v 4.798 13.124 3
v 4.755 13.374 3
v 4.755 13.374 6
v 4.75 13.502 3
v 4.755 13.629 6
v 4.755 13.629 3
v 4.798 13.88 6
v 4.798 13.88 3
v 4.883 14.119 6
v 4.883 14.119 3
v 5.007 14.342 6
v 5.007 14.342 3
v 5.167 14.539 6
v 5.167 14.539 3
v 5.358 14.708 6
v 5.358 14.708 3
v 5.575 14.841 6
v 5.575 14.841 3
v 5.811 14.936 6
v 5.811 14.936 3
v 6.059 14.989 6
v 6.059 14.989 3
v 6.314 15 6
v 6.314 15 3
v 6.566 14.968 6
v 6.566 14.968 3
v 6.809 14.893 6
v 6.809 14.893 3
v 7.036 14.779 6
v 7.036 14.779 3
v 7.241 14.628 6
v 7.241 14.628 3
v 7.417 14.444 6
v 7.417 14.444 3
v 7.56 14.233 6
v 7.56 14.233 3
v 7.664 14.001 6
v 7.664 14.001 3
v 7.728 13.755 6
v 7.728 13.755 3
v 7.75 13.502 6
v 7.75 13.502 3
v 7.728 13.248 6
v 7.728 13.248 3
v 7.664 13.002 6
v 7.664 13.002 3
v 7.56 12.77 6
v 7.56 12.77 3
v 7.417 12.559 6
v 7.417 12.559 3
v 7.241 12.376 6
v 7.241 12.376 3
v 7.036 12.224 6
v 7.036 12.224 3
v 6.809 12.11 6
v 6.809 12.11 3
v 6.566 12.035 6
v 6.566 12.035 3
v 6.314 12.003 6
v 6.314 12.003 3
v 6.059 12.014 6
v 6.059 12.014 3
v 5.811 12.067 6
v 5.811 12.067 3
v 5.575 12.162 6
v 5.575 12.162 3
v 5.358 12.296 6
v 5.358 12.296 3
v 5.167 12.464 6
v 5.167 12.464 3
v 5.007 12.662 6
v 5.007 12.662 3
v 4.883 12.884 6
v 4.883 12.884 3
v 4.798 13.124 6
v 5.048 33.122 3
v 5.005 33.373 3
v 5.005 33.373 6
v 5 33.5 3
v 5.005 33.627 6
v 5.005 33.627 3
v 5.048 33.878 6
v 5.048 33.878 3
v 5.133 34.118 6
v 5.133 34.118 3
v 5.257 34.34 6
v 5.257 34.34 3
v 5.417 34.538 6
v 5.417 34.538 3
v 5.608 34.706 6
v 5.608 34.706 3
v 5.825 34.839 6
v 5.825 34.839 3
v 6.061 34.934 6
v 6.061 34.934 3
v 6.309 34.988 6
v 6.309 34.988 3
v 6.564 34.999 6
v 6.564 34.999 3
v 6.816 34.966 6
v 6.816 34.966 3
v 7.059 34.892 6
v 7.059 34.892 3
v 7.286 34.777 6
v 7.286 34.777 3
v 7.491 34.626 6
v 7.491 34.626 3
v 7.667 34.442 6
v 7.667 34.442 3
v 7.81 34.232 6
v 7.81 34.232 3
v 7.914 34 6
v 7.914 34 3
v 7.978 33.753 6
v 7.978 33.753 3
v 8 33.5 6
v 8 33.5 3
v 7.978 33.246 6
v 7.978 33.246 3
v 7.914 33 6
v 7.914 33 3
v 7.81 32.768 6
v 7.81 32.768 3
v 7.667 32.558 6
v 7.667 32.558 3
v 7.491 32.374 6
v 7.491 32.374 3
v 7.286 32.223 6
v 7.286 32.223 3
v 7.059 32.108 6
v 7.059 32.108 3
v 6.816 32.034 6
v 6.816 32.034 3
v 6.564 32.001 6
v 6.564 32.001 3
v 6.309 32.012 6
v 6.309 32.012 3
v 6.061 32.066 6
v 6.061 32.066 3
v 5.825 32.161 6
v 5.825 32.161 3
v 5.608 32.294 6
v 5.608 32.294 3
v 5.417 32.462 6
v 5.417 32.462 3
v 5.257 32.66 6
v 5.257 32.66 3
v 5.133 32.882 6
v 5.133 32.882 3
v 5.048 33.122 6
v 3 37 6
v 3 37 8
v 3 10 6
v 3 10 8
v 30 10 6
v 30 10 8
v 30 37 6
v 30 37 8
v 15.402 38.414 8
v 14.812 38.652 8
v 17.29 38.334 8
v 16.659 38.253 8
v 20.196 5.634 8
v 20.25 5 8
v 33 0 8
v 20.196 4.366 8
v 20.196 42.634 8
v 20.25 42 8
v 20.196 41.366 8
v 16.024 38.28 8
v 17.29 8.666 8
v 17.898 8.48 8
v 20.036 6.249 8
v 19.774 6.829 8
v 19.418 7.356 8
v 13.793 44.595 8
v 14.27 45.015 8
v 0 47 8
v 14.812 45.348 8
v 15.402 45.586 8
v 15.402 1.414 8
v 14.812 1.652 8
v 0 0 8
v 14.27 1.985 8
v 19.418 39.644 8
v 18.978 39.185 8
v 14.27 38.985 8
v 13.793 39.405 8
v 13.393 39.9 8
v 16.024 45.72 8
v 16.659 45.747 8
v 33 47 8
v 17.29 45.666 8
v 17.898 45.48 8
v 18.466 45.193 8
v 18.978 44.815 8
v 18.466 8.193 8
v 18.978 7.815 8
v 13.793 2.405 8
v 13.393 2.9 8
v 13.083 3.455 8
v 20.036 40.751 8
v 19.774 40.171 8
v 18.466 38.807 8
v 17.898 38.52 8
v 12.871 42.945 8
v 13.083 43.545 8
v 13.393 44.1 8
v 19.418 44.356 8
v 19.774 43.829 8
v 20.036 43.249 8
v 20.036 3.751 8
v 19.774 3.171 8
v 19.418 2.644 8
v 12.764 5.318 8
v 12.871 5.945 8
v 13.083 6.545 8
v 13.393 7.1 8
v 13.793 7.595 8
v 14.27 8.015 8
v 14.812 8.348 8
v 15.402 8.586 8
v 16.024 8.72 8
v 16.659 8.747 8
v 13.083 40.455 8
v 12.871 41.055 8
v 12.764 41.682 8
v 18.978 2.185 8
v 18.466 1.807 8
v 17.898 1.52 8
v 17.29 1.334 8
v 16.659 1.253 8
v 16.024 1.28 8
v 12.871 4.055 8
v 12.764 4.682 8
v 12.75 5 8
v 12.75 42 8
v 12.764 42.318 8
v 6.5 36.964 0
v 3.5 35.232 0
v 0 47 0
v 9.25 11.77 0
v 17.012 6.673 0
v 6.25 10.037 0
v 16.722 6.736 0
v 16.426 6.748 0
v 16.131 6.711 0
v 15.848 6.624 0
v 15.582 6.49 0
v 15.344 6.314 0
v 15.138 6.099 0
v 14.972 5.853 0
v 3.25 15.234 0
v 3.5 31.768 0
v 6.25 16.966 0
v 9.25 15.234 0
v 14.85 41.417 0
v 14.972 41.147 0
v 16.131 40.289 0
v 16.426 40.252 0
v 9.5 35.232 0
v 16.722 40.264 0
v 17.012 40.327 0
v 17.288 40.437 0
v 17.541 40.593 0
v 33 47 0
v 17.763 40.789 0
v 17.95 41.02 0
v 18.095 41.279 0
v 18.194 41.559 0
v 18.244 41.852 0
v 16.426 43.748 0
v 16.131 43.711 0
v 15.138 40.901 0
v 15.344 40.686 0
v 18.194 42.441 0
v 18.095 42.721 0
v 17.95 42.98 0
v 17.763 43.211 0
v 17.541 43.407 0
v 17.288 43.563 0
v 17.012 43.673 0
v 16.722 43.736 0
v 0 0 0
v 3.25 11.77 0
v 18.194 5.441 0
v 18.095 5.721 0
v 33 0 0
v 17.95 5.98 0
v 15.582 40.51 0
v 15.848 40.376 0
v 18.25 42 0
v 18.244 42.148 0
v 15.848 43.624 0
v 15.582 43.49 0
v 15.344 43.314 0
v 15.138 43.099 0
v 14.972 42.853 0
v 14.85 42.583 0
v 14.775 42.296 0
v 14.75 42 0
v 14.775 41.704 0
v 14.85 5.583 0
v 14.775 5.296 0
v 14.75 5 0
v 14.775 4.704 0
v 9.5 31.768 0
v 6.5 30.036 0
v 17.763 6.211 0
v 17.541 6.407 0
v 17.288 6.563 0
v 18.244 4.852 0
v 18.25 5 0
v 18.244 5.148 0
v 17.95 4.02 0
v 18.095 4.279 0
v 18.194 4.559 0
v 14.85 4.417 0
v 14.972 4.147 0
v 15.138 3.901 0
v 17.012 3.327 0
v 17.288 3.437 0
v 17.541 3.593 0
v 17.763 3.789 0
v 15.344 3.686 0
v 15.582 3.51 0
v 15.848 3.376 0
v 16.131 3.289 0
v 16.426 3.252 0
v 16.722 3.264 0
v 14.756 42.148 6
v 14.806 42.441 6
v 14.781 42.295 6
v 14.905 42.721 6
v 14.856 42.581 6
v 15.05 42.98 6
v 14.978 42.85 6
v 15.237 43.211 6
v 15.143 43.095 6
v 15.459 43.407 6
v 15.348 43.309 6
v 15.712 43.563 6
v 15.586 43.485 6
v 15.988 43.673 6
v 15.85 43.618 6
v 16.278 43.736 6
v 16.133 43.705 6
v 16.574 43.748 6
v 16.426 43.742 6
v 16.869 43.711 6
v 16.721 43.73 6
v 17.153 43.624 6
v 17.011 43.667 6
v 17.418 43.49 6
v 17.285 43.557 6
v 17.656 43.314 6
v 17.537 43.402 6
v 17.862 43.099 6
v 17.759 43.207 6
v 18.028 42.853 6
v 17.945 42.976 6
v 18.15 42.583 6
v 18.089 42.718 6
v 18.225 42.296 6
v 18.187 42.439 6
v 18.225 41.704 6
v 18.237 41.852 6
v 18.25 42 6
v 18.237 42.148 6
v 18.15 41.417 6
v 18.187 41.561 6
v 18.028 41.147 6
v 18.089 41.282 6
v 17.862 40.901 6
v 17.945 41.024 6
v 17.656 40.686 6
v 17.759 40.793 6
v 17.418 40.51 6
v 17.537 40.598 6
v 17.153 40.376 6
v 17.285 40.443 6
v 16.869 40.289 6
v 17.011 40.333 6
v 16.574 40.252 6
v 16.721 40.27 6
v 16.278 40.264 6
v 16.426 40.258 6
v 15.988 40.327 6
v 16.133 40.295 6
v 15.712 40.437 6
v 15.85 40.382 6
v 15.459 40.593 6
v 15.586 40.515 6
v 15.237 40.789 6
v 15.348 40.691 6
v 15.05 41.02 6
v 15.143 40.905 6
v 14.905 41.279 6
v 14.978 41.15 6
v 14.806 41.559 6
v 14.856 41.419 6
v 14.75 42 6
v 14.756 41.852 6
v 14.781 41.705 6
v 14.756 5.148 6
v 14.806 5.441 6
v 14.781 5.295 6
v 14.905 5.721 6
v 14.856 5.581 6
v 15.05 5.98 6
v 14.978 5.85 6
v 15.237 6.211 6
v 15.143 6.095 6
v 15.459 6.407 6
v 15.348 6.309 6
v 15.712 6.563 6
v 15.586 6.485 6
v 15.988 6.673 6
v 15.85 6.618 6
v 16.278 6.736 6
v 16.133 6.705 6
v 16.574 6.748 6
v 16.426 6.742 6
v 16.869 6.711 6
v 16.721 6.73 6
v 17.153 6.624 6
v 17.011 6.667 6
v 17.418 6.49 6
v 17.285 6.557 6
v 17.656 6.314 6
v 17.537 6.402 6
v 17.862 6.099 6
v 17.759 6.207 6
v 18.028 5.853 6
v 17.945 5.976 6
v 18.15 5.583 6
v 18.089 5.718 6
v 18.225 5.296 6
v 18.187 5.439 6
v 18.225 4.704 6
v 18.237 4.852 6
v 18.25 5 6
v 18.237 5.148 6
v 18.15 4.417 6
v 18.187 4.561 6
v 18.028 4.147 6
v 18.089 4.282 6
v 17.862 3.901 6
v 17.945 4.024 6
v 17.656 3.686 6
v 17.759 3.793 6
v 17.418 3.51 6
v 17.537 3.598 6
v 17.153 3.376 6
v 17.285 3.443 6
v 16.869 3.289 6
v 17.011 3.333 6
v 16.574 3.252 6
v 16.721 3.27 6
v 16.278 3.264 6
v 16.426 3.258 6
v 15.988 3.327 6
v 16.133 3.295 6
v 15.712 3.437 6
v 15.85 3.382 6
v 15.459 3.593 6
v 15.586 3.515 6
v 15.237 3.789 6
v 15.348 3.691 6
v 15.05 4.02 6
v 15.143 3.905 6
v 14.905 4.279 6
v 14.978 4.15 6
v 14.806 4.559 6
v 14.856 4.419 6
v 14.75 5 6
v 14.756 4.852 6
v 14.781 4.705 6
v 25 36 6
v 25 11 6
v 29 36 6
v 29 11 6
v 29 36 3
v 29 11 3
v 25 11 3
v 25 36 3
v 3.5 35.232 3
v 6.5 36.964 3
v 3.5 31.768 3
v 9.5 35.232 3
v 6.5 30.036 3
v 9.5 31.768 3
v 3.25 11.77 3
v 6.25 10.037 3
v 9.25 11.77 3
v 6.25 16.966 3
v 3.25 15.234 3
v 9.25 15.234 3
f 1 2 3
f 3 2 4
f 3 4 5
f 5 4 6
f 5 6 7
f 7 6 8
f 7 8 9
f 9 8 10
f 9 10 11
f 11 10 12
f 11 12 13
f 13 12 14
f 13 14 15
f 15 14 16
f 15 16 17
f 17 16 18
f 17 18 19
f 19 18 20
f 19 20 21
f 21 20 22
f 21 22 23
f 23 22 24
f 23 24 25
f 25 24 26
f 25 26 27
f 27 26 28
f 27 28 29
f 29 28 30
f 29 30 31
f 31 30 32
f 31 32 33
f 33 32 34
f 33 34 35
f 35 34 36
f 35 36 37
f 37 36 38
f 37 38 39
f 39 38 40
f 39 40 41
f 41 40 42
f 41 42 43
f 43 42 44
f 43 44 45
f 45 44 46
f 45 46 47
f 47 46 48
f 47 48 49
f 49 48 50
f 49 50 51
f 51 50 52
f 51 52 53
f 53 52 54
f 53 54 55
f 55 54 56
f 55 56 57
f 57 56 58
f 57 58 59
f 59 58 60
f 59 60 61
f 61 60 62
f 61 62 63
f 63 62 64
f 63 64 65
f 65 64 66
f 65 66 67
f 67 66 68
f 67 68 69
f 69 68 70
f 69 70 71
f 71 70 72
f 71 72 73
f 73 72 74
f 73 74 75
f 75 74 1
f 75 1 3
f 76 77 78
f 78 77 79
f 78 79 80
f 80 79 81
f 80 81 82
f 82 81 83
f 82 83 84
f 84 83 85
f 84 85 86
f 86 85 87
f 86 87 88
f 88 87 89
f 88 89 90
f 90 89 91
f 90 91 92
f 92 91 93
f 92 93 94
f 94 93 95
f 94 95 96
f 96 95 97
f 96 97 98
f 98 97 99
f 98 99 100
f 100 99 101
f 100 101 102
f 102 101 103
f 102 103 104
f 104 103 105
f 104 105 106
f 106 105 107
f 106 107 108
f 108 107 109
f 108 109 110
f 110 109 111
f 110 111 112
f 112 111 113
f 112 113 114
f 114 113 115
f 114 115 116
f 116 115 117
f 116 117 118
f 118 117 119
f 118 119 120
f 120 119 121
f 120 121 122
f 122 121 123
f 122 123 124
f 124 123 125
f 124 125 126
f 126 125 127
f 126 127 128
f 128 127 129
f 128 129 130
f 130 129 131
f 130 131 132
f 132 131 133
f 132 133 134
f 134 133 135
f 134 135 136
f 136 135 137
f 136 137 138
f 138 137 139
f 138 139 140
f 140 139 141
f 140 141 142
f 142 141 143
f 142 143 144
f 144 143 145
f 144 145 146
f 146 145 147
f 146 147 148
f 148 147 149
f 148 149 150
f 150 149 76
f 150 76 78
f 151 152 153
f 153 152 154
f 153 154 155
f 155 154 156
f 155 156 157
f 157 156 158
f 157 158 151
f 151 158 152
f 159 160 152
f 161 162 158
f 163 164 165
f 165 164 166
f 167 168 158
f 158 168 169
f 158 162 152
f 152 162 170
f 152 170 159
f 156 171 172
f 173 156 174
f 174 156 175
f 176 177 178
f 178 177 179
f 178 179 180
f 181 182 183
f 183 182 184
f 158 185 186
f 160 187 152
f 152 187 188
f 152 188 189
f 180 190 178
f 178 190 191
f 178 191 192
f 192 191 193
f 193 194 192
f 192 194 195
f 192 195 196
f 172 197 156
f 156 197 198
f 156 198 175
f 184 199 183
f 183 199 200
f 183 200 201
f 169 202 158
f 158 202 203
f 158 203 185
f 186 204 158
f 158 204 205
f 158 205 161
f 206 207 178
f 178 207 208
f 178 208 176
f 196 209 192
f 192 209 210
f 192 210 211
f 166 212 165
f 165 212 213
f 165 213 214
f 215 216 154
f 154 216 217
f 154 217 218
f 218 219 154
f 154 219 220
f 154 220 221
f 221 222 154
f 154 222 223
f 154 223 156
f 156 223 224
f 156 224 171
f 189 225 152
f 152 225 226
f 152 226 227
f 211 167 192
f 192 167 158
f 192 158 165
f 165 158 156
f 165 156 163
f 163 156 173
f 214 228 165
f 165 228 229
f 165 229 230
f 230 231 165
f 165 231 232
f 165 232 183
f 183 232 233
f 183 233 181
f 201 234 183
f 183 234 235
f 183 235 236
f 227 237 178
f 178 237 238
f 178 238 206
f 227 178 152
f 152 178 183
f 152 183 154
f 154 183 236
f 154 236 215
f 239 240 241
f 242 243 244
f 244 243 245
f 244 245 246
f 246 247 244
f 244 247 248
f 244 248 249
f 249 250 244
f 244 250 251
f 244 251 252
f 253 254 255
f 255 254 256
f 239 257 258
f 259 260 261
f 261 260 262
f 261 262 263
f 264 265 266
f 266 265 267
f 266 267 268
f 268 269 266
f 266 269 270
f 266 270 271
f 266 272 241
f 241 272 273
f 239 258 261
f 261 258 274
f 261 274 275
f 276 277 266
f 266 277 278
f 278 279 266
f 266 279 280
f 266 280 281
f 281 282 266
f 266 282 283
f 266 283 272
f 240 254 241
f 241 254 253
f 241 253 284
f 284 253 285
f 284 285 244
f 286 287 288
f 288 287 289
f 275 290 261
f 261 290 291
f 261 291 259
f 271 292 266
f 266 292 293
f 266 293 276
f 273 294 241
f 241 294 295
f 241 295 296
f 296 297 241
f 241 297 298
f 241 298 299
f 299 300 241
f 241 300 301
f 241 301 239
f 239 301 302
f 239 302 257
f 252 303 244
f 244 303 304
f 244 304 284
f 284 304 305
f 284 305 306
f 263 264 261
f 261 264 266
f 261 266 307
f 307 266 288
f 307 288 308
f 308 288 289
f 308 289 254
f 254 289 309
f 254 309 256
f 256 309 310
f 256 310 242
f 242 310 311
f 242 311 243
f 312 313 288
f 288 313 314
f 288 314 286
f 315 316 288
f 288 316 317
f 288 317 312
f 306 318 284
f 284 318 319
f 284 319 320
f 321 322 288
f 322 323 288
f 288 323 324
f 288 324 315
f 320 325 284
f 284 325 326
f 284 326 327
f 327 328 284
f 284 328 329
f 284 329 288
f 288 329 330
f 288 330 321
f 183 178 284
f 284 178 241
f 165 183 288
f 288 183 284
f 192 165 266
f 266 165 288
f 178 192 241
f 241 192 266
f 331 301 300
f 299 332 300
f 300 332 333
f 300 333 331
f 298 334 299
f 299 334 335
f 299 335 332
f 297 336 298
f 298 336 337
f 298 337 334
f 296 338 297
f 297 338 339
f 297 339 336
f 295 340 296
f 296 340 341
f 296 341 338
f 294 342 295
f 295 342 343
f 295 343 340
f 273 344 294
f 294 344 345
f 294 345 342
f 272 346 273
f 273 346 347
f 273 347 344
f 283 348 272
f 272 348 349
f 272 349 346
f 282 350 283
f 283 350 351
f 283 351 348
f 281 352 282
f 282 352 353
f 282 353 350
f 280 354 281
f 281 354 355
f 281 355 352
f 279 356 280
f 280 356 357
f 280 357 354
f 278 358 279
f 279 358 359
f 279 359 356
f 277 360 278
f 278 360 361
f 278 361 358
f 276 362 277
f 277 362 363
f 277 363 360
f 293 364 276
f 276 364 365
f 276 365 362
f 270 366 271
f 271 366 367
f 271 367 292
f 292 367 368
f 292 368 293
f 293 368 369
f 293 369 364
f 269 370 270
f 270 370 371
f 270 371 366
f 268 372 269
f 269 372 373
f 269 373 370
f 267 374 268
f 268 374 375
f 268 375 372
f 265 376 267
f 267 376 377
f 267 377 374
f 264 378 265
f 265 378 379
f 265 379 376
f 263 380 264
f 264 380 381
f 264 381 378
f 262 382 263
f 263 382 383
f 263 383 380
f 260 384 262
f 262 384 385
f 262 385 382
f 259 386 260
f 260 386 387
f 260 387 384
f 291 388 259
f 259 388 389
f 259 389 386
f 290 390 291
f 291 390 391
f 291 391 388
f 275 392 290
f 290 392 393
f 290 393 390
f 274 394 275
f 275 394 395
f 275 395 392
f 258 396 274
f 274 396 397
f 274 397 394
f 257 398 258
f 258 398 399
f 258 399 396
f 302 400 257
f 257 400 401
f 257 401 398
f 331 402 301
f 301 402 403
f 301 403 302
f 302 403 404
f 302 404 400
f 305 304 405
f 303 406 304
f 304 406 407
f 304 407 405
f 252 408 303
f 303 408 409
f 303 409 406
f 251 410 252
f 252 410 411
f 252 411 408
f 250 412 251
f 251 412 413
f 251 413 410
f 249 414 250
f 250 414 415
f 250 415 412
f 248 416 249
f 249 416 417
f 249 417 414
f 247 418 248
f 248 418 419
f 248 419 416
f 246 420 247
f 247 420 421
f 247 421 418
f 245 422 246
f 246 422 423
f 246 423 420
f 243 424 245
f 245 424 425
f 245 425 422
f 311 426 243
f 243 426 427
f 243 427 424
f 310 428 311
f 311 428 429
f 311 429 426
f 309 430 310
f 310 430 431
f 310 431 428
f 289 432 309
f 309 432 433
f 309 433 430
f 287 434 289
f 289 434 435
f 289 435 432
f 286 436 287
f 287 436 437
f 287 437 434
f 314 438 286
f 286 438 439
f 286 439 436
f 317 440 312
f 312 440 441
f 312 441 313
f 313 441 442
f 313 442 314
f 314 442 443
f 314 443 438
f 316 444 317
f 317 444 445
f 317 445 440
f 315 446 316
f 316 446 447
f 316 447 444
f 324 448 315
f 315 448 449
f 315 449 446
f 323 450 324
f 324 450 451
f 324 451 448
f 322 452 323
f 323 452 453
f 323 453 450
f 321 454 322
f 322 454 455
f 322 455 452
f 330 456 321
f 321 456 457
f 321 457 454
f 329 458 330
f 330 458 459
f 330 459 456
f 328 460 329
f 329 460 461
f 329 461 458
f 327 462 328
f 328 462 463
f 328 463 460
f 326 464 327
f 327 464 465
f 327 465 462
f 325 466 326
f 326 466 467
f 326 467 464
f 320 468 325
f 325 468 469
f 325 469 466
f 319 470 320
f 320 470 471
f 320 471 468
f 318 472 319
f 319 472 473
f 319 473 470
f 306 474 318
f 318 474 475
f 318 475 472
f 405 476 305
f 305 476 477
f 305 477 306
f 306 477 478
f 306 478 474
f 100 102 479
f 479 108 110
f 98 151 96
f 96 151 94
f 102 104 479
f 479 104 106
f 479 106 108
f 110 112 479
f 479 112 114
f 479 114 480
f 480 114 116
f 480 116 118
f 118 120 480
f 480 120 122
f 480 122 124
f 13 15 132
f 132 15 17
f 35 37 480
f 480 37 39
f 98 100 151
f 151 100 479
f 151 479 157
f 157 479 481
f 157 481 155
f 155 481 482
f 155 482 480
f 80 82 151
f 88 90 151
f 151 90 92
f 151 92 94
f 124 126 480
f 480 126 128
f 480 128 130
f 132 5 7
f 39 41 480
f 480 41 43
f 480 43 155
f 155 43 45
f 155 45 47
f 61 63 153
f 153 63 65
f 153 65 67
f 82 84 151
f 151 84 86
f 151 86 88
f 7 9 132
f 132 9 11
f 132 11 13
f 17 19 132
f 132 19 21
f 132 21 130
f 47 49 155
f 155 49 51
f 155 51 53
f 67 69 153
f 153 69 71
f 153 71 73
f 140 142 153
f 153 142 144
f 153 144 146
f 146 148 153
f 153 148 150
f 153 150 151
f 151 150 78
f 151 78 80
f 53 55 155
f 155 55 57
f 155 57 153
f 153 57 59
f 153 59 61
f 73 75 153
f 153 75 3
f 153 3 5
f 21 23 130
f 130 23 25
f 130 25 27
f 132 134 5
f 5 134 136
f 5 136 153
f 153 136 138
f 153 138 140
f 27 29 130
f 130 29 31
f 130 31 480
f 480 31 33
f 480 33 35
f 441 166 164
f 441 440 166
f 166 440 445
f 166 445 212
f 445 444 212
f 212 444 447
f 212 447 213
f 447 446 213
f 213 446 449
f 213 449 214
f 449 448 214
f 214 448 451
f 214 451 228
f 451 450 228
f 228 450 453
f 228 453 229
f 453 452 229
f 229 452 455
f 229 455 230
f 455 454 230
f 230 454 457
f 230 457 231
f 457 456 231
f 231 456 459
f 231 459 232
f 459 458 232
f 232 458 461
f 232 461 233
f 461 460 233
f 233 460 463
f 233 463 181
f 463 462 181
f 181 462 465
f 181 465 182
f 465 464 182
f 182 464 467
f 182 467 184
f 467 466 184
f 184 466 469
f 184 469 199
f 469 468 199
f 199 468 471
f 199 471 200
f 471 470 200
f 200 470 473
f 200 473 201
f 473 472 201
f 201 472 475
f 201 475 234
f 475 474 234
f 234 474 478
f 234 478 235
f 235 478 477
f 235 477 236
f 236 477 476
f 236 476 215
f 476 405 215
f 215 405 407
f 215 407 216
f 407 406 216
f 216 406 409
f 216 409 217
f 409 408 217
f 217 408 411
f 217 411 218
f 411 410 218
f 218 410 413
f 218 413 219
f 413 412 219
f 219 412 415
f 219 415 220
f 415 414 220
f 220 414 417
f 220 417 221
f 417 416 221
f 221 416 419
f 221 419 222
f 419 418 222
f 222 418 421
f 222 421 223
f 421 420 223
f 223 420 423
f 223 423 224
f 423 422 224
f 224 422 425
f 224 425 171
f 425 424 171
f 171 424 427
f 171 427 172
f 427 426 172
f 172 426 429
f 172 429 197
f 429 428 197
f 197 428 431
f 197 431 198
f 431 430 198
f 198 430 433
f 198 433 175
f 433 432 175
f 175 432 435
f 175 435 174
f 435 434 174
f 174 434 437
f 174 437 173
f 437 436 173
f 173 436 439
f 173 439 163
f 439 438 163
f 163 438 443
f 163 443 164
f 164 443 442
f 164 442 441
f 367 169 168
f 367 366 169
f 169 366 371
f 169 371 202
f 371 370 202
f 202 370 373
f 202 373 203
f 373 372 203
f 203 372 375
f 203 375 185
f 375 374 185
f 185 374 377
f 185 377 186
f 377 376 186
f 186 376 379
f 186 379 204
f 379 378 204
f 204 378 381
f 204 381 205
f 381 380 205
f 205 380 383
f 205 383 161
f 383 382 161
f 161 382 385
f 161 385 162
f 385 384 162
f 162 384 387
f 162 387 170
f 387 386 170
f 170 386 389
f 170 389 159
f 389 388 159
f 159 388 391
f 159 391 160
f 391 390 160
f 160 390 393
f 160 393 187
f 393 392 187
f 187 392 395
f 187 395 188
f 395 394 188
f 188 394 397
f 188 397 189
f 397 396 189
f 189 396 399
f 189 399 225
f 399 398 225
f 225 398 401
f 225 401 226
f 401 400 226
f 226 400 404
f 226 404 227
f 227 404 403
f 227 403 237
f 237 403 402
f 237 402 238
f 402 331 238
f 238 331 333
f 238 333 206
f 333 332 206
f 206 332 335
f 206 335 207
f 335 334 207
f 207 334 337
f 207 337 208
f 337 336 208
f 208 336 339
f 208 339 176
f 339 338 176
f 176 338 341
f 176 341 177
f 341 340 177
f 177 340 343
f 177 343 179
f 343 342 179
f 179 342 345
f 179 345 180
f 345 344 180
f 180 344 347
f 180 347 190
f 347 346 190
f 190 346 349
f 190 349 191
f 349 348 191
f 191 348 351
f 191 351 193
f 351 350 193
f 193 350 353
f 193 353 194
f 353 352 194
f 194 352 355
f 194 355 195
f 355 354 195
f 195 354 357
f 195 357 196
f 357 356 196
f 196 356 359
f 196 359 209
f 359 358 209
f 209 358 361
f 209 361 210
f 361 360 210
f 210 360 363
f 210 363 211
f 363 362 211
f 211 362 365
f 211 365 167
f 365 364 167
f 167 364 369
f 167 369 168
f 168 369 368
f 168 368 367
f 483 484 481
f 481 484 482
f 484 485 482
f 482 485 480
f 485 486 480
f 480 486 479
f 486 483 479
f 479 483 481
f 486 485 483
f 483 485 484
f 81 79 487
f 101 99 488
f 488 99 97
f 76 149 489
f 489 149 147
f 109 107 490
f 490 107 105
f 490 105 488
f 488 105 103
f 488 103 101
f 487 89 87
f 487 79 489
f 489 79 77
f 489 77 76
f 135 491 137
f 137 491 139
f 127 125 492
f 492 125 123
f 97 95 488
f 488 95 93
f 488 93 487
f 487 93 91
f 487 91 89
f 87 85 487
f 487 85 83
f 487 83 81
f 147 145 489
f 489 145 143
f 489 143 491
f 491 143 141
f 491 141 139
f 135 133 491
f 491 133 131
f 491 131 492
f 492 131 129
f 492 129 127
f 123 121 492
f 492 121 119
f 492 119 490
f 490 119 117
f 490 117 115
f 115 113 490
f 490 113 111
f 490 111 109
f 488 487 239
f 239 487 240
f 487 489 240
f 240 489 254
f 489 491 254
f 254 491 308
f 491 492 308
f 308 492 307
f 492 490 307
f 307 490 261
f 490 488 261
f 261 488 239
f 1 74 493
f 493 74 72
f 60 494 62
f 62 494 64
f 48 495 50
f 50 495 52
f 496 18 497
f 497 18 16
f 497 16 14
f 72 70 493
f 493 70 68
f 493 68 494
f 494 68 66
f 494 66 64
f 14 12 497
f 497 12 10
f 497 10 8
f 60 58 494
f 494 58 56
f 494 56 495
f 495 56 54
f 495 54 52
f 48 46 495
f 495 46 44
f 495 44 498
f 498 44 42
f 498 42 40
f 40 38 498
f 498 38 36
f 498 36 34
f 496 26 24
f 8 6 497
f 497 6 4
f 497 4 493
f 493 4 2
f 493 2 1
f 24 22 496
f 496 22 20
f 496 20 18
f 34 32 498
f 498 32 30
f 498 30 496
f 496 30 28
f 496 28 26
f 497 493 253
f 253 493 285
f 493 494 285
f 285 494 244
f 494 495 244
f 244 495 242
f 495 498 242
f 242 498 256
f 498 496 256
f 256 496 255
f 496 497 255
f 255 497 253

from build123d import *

# Parameters (mm, degrees)
SKETCH1_W           = 33
SKETCH1_H           = 47
SKETCH1_R           = 1.75
SKETCH1_W_2         = 27
SKETCH1_H_2         = 27
BOSS_EXTRUDE1_DEPTH = 8
SKETCH3_W           = 27
SKETCH3_H           = 27
BOSS_EXTRUDE2_DEPTH = 6
CHAMFER1_SIZE       = 2
SKETCH4_R           = 1.5
CUT_EXTRUDE1_DEPTH  = 10
SKETCH5_W           = 4
SKETCH5_H           = 25
CUT_EXTRUDE2_DEPTH  = 3
CUT_EXTRUDE3_DEPTH  = 3


with BuildPart() as part:
    # Sketch1 → Boss-Extrude1 (new body)
    with BuildSketch(Plane.XY):
        with Locations((16.5, 23.5)):
            Rectangle(SKETCH1_W, SKETCH1_H)
        with Locations((16.5, 42)):
            Circle(SKETCH1_R, mode=Mode.SUBTRACT)
        with Locations((16.5, 5)):
            Circle(SKETCH1_R, mode=Mode.SUBTRACT)
        with Locations((16.5, 23.5)):
            Rectangle(SKETCH1_W_2, SKETCH1_H_2, mode=Mode.SUBTRACT)
    extrude(amount=BOSS_EXTRUDE1_DEPTH)

    # Sketch3 → Boss-Extrude2 (add)
    with BuildSketch(Plane(origin=(0, 0, 0), x_dir=(-1, 0, 0), z_dir=(0, 0, -1))):
        with Locations((-16.5, 23.5)):
            Rectangle(SKETCH3_W, SKETCH3_H)
    extrude(amount=-BOSS_EXTRUDE2_DEPTH)

    # Chamfer1
    chamfer1_edges = [part.edges().sort_by_distance(p)[0] for p in [
        (14.75, 42, 8),
        (14.75, 5, 8),
    ]]
    chamfer(chamfer1_edges, length=CHAMFER1_SIZE)

    # Sketch4 → Cut-Extrude1 (cut)
    with BuildSketch(Plane.XY.offset(6)):
        with Locations((6.5, 33.5)):
            Circle(SKETCH4_R)
        with Locations((6.25, 13.501562561)):
            Circle(SKETCH4_R)
    extrude(amount=-CUT_EXTRUDE1_DEPTH, mode=Mode.SUBTRACT)

    # Sketch5 → Cut-Extrude2 (cut)
    with BuildSketch(Plane.XY.offset(6)):
        with Locations((27, 23.5)):
            Rectangle(SKETCH5_W, SKETCH5_H)
    extrude(amount=-CUT_EXTRUDE2_DEPTH, mode=Mode.SUBTRACT)

    # Sketch6 → Cut-Extrude3 (cut)
    with BuildSketch(Plane(origin=(0, 0, 0), x_dir=(-1, 0, 0), z_dir=(0, 0, -1))):
        Polygon((-6.5, 36.964101615), (-9.5, 35.232050808), (-9.5, 31.767949192), (-6.5, 30.035898385), (-3.5, 31.767949192), (-3.5, 35.232050808), align=None)
        Polygon((-3.25, 15.233613369), (-6.25, 16.965664176), (-9.25, 15.233613369), (-9.25, 11.769511753), (-6.25, 10.037460946), (-3.25, 11.769511753), align=None)
    extrude(amount=-CUT_EXTRUDE3_DEPTH, mode=Mode.SUBTRACT)


solid = part.part
